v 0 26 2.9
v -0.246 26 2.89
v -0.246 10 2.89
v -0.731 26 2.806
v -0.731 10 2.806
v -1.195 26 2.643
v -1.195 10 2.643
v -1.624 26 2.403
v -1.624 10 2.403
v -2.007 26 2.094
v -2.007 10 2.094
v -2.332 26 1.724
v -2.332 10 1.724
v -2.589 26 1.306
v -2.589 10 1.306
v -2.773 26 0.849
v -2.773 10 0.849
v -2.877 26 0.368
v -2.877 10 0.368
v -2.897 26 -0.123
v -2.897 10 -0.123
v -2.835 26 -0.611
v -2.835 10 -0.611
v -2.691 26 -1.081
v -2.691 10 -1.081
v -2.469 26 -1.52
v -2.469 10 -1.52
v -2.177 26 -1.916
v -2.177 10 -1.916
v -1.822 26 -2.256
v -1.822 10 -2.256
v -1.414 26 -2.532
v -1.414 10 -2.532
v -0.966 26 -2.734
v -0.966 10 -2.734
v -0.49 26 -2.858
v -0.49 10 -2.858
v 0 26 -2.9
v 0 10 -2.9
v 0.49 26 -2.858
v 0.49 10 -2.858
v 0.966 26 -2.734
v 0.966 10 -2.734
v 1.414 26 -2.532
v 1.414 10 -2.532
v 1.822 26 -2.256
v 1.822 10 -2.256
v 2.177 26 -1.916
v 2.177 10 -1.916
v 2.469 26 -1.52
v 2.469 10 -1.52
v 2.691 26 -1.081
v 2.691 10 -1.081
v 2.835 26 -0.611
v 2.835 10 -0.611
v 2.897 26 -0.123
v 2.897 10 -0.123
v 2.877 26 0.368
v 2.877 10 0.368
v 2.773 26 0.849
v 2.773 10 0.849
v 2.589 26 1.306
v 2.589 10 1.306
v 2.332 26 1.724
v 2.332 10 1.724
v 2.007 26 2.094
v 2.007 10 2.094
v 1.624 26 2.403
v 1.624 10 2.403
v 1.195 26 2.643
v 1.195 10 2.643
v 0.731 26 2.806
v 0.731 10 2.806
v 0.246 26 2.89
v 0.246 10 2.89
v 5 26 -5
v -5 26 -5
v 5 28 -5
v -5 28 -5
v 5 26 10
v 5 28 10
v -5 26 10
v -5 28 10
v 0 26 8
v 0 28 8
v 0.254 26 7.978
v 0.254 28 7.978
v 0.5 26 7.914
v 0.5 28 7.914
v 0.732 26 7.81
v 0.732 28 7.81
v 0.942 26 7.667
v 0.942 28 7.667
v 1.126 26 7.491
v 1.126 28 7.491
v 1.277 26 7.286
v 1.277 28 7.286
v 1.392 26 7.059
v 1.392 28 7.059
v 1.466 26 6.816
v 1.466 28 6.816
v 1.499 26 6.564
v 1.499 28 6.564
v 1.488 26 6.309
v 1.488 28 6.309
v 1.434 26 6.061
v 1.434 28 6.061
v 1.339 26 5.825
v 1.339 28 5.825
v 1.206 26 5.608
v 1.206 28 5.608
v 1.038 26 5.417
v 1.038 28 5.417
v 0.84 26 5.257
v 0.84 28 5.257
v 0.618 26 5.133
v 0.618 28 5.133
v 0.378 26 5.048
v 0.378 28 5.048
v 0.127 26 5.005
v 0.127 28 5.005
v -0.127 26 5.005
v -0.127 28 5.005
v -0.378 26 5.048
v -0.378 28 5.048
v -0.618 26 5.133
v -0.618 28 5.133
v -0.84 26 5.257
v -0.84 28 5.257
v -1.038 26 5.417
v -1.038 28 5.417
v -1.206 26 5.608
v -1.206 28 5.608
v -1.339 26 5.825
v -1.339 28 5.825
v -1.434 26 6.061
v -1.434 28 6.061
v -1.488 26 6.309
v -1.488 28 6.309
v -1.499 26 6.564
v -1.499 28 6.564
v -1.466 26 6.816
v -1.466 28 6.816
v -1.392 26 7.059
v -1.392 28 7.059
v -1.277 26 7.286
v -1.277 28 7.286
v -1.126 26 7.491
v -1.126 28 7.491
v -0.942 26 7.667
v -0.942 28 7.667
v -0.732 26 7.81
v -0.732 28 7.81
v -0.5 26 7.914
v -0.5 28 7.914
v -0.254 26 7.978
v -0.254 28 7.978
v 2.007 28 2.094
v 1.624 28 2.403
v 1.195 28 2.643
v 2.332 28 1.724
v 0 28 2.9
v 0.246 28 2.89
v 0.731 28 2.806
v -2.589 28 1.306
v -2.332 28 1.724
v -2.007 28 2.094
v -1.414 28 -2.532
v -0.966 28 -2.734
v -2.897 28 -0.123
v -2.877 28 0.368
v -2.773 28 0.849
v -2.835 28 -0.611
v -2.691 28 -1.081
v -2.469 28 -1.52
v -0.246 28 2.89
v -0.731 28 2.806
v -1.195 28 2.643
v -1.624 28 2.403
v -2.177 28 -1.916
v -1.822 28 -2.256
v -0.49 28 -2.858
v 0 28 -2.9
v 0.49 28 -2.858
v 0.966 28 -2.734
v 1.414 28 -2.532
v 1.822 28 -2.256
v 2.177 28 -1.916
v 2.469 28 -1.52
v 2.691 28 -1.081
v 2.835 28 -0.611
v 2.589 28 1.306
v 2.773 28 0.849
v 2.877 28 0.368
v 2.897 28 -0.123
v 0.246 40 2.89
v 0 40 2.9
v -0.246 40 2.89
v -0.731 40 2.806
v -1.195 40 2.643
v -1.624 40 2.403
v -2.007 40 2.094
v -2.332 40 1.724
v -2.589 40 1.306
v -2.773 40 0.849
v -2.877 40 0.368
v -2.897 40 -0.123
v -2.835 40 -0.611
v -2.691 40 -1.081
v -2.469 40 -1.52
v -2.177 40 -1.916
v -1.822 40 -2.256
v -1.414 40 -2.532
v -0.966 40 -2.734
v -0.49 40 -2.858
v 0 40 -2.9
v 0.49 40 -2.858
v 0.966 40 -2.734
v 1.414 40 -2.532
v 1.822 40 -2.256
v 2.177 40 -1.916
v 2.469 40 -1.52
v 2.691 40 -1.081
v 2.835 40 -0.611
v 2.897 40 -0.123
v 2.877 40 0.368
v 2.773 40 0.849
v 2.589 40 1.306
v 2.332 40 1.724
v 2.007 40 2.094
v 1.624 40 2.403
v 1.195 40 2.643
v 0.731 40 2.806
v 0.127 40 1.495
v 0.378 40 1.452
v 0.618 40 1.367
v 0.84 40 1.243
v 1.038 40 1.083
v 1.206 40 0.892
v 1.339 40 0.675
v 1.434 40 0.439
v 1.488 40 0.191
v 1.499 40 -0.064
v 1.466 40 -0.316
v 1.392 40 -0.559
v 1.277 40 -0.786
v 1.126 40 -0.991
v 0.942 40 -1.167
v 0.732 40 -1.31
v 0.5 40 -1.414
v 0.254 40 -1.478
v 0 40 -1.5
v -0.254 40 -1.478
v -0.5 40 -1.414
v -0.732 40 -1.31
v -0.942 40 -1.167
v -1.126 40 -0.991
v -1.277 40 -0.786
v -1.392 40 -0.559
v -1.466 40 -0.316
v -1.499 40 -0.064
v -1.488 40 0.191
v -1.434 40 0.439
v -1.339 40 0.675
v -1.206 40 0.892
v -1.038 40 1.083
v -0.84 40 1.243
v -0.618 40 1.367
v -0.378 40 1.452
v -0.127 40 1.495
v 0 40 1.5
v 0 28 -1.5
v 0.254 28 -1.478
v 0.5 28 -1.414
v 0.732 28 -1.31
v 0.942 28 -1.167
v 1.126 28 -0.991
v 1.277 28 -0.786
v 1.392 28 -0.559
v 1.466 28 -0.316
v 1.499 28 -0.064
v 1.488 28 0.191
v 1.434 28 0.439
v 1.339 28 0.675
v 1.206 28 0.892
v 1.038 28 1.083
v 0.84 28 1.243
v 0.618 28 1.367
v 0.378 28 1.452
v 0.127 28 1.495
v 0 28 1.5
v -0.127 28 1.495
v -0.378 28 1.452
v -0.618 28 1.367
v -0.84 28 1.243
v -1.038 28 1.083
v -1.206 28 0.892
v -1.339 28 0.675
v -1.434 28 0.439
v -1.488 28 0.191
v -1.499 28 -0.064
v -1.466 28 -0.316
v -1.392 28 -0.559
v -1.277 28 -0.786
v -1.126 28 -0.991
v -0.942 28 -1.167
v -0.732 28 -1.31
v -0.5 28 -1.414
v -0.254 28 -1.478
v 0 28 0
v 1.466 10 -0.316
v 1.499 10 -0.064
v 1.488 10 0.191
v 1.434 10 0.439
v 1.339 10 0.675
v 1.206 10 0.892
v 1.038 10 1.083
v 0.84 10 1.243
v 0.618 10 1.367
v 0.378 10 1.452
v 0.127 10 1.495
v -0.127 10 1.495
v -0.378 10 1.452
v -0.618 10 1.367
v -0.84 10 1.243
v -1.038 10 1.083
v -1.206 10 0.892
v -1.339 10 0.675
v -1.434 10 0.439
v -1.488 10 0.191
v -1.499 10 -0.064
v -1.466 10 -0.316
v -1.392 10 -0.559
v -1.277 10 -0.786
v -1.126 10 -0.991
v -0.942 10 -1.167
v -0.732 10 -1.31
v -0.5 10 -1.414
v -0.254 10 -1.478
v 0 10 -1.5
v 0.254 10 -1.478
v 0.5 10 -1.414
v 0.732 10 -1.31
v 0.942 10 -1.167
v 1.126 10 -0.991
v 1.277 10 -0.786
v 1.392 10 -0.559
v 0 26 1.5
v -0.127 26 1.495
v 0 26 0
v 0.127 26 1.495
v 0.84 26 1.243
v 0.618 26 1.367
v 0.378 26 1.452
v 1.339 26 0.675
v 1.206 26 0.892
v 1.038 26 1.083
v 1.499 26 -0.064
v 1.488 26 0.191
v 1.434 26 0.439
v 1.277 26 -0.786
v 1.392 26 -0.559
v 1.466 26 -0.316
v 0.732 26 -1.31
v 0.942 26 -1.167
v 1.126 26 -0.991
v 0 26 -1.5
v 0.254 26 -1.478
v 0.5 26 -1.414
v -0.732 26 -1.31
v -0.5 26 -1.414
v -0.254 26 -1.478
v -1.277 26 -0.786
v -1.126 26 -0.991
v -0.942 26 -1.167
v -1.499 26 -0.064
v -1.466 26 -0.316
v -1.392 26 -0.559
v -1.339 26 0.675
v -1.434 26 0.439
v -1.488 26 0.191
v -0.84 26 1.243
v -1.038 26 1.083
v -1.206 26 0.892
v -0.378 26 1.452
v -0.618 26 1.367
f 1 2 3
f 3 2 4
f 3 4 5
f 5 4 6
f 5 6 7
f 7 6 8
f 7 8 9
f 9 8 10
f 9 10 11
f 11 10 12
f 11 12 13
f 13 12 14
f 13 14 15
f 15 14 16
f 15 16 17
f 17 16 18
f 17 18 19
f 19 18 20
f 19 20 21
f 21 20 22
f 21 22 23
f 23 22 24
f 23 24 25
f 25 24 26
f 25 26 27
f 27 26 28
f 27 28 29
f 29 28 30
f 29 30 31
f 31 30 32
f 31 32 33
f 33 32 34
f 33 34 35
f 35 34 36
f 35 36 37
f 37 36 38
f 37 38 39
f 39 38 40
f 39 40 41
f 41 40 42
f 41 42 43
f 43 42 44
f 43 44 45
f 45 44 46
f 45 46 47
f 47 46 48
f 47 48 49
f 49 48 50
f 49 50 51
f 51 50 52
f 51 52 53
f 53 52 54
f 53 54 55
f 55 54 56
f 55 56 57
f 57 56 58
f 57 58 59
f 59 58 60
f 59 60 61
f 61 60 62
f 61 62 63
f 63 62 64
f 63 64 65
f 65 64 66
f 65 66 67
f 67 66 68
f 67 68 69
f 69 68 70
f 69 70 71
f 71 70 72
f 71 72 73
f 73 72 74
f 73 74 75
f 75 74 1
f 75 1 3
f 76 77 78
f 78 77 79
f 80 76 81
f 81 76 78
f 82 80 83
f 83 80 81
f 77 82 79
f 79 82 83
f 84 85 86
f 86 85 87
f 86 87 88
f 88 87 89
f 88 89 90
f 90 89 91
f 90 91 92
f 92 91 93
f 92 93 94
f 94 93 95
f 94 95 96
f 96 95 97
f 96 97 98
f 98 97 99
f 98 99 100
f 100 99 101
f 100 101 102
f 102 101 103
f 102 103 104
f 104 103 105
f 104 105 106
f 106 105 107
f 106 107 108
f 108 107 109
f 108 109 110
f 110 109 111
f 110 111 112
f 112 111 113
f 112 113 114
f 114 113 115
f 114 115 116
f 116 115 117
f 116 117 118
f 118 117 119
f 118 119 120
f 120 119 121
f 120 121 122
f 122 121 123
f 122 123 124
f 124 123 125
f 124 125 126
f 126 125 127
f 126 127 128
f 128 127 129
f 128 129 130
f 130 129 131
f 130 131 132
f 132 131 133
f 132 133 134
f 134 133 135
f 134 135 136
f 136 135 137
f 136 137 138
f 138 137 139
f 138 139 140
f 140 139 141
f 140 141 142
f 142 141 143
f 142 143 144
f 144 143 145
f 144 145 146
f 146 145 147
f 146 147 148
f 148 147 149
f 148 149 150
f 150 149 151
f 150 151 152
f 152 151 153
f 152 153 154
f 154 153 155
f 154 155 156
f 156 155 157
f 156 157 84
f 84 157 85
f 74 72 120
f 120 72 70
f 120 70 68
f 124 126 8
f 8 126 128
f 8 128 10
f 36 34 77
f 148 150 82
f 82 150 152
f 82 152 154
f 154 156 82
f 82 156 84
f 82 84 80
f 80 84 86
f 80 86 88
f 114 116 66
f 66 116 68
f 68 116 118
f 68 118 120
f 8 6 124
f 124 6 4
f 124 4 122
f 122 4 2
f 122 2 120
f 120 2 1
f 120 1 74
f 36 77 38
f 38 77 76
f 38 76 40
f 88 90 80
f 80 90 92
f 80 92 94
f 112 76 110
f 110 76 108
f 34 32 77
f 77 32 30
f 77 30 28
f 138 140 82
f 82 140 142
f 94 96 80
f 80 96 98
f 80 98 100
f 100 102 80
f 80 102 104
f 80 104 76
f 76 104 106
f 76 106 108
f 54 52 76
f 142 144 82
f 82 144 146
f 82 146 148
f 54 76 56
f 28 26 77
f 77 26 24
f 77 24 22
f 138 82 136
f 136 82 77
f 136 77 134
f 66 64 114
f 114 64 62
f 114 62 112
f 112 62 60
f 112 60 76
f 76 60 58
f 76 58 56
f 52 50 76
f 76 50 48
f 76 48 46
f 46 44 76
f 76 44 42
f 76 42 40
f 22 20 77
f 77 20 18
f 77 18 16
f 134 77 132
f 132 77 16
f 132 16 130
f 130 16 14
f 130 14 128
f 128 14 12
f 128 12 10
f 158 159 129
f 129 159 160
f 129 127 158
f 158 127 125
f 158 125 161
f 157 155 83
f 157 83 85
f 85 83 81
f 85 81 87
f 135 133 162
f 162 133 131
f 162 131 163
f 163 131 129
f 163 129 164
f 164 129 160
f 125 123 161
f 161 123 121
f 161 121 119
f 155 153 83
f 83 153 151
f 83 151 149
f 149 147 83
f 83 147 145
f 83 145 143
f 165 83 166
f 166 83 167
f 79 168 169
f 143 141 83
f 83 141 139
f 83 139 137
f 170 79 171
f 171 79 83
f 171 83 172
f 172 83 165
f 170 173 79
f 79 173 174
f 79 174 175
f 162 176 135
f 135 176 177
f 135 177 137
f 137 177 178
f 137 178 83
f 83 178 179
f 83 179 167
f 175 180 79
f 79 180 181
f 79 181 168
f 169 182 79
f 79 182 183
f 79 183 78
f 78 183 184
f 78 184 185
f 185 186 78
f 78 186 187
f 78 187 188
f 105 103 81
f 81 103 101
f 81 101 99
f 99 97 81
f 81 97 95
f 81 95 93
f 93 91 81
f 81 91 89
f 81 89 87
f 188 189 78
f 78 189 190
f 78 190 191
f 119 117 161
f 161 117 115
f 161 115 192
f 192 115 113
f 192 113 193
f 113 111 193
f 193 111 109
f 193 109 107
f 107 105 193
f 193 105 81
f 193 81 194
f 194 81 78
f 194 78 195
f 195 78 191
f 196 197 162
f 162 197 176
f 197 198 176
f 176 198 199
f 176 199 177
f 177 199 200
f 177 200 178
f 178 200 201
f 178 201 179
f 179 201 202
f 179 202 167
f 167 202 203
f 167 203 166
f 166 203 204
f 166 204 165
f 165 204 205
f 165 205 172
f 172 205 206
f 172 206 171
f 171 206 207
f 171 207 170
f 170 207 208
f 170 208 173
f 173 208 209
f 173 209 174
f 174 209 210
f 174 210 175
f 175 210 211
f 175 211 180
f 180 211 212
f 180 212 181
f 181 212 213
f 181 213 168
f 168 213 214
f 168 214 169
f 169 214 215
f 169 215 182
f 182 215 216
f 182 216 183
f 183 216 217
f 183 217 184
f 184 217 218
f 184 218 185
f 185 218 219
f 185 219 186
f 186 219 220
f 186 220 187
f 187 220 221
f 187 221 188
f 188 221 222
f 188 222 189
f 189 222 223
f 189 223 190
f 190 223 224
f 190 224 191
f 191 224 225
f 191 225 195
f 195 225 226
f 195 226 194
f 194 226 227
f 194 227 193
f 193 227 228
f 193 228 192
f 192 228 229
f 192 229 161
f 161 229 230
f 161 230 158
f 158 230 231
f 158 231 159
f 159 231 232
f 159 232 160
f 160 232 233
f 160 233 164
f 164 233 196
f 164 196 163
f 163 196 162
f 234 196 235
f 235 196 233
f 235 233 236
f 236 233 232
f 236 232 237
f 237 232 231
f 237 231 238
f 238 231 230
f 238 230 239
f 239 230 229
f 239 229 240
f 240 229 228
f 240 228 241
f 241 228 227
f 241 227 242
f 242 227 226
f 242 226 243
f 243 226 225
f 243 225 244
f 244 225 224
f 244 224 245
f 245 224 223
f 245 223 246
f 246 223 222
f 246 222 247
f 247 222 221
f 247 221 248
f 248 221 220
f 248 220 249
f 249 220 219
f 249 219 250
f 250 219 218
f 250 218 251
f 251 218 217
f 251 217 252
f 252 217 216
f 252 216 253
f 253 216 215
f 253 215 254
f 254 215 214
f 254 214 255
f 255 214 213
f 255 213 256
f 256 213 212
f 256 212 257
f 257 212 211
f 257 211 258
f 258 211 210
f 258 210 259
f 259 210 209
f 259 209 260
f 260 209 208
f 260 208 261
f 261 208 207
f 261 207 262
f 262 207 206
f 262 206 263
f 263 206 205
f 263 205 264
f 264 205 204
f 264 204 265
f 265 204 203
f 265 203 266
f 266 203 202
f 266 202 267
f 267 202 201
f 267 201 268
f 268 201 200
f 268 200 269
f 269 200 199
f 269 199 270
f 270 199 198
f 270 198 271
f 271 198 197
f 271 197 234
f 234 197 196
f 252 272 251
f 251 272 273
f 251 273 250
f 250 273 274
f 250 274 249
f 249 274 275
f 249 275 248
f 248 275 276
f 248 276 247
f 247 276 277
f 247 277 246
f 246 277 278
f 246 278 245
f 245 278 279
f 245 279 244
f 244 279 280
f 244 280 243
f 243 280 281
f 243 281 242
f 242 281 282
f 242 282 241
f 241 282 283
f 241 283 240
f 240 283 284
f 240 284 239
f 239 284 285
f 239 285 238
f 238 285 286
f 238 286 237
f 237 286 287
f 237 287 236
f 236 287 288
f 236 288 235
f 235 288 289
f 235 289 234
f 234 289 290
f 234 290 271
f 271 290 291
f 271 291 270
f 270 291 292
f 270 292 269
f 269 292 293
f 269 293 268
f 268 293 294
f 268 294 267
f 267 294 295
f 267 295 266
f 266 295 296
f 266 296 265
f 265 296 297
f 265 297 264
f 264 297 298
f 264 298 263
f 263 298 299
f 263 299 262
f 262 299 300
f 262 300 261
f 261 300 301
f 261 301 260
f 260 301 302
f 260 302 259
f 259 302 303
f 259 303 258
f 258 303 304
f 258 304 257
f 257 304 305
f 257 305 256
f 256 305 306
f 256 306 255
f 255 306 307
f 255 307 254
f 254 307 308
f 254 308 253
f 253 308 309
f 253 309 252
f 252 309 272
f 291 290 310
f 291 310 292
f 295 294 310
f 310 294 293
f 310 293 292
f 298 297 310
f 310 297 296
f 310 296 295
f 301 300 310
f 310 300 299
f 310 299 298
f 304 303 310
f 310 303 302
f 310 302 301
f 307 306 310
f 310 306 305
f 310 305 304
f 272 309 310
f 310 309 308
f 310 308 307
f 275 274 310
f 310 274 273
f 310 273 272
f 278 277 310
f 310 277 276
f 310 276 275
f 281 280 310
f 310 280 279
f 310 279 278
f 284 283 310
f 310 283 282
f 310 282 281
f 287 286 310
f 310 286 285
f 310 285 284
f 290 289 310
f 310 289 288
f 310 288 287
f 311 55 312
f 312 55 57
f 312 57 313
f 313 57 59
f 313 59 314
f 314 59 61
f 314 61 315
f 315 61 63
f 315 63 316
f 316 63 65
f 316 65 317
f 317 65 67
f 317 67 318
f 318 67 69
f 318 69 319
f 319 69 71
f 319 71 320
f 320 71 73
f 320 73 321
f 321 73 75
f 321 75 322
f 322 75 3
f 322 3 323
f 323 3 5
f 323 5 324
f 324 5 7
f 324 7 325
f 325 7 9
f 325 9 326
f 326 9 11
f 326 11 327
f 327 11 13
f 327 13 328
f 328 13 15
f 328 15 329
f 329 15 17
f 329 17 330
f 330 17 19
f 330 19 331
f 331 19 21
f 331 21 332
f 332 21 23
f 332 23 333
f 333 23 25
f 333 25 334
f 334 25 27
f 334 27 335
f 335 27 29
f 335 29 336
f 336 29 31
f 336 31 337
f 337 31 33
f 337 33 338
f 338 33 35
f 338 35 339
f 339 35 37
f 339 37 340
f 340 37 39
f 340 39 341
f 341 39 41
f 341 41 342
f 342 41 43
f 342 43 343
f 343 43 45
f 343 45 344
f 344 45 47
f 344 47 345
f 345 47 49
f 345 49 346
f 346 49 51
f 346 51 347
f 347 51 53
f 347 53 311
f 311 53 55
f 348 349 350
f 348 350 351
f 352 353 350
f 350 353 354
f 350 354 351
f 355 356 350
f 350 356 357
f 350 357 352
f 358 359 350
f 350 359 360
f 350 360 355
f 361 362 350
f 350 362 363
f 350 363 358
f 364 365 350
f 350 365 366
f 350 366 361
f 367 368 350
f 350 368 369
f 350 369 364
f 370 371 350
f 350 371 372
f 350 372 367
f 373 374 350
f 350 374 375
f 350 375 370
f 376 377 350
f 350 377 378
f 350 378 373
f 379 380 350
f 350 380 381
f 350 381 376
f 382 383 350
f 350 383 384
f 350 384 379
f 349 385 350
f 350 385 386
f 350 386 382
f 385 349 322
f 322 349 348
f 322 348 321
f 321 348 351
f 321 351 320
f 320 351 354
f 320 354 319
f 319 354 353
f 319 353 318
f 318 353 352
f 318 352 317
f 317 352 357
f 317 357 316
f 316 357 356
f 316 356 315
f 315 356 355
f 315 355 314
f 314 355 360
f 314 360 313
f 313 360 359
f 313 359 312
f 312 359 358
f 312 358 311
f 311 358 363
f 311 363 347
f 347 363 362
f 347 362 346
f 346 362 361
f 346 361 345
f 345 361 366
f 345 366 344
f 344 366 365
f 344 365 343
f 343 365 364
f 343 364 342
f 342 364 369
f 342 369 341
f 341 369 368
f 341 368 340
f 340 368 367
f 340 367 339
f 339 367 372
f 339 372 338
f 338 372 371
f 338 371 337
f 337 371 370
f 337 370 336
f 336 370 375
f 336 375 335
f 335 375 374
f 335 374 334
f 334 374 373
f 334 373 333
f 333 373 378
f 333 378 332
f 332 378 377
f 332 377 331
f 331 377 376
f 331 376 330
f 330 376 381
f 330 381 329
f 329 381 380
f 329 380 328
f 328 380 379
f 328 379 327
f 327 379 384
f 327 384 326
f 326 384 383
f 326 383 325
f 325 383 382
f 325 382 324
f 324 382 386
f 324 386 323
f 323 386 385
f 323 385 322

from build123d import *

# Parameters (mm, degrees)
SKETCH_1_R          = 2.9
SKETCH_1_R_2        = 1.5
EXTRUDE_1_DEPTH     = 40
SKETCH_2_W          = 10
SKETCH_2_H          = 15
SKETCH_2_R          = 1.5
EXTRUDE_2_DEPTH     = 2
SKETCH_3_R          = 2.9
CUT_EXTRUDE_1_DEPTH = 33.015621187


with BuildPart() as part:
    # 草图1 → 凸台-拉伸1 (new body)
    with BuildSketch(Plane(origin=(0, 0, 0), x_dir=(1, 0, 0), z_dir=(0, 1, 0))):
        with Locations(Location((0, 0, 0), (0, 0, 270))):
            Circle(SKETCH_1_R)
        with Locations(Location((0, 0, 0), (0, 0, 270))):
            Circle(SKETCH_1_R_2, mode=Mode.SUBTRACT)
    extrude(amount=EXTRUDE_1_DEPTH)

    # 草图2 → 凸台-拉伸2 (add)
    with BuildSketch(Plane(origin=(0, 28, 0), x_dir=(1, 0, 0), z_dir=(0, 1, 0))):
        with Locations((0, -2.5)):
            Rectangle(SKETCH_2_W, SKETCH_2_H)
        with Locations(Location((0, -6.5, 0), (0, 0, 270))):
            Circle(SKETCH_2_R, mode=Mode.SUBTRACT)
    extrude(amount=-EXTRUDE_2_DEPTH)

    # 草图3 → 切除-拉伸1 (cut, through all)
    with BuildSketch(Plane(origin=(0, 10, 0), x_dir=(-1, 0, 0), z_dir=(0, -1, 0))):
        with Locations(Location((0, 0, 0), (0, 0, 90))):
            Circle(SKETCH_3_R)
    extrude(amount=CUT_EXTRUDE_1_DEPTH, mode=Mode.SUBTRACT)


solid = part.part
